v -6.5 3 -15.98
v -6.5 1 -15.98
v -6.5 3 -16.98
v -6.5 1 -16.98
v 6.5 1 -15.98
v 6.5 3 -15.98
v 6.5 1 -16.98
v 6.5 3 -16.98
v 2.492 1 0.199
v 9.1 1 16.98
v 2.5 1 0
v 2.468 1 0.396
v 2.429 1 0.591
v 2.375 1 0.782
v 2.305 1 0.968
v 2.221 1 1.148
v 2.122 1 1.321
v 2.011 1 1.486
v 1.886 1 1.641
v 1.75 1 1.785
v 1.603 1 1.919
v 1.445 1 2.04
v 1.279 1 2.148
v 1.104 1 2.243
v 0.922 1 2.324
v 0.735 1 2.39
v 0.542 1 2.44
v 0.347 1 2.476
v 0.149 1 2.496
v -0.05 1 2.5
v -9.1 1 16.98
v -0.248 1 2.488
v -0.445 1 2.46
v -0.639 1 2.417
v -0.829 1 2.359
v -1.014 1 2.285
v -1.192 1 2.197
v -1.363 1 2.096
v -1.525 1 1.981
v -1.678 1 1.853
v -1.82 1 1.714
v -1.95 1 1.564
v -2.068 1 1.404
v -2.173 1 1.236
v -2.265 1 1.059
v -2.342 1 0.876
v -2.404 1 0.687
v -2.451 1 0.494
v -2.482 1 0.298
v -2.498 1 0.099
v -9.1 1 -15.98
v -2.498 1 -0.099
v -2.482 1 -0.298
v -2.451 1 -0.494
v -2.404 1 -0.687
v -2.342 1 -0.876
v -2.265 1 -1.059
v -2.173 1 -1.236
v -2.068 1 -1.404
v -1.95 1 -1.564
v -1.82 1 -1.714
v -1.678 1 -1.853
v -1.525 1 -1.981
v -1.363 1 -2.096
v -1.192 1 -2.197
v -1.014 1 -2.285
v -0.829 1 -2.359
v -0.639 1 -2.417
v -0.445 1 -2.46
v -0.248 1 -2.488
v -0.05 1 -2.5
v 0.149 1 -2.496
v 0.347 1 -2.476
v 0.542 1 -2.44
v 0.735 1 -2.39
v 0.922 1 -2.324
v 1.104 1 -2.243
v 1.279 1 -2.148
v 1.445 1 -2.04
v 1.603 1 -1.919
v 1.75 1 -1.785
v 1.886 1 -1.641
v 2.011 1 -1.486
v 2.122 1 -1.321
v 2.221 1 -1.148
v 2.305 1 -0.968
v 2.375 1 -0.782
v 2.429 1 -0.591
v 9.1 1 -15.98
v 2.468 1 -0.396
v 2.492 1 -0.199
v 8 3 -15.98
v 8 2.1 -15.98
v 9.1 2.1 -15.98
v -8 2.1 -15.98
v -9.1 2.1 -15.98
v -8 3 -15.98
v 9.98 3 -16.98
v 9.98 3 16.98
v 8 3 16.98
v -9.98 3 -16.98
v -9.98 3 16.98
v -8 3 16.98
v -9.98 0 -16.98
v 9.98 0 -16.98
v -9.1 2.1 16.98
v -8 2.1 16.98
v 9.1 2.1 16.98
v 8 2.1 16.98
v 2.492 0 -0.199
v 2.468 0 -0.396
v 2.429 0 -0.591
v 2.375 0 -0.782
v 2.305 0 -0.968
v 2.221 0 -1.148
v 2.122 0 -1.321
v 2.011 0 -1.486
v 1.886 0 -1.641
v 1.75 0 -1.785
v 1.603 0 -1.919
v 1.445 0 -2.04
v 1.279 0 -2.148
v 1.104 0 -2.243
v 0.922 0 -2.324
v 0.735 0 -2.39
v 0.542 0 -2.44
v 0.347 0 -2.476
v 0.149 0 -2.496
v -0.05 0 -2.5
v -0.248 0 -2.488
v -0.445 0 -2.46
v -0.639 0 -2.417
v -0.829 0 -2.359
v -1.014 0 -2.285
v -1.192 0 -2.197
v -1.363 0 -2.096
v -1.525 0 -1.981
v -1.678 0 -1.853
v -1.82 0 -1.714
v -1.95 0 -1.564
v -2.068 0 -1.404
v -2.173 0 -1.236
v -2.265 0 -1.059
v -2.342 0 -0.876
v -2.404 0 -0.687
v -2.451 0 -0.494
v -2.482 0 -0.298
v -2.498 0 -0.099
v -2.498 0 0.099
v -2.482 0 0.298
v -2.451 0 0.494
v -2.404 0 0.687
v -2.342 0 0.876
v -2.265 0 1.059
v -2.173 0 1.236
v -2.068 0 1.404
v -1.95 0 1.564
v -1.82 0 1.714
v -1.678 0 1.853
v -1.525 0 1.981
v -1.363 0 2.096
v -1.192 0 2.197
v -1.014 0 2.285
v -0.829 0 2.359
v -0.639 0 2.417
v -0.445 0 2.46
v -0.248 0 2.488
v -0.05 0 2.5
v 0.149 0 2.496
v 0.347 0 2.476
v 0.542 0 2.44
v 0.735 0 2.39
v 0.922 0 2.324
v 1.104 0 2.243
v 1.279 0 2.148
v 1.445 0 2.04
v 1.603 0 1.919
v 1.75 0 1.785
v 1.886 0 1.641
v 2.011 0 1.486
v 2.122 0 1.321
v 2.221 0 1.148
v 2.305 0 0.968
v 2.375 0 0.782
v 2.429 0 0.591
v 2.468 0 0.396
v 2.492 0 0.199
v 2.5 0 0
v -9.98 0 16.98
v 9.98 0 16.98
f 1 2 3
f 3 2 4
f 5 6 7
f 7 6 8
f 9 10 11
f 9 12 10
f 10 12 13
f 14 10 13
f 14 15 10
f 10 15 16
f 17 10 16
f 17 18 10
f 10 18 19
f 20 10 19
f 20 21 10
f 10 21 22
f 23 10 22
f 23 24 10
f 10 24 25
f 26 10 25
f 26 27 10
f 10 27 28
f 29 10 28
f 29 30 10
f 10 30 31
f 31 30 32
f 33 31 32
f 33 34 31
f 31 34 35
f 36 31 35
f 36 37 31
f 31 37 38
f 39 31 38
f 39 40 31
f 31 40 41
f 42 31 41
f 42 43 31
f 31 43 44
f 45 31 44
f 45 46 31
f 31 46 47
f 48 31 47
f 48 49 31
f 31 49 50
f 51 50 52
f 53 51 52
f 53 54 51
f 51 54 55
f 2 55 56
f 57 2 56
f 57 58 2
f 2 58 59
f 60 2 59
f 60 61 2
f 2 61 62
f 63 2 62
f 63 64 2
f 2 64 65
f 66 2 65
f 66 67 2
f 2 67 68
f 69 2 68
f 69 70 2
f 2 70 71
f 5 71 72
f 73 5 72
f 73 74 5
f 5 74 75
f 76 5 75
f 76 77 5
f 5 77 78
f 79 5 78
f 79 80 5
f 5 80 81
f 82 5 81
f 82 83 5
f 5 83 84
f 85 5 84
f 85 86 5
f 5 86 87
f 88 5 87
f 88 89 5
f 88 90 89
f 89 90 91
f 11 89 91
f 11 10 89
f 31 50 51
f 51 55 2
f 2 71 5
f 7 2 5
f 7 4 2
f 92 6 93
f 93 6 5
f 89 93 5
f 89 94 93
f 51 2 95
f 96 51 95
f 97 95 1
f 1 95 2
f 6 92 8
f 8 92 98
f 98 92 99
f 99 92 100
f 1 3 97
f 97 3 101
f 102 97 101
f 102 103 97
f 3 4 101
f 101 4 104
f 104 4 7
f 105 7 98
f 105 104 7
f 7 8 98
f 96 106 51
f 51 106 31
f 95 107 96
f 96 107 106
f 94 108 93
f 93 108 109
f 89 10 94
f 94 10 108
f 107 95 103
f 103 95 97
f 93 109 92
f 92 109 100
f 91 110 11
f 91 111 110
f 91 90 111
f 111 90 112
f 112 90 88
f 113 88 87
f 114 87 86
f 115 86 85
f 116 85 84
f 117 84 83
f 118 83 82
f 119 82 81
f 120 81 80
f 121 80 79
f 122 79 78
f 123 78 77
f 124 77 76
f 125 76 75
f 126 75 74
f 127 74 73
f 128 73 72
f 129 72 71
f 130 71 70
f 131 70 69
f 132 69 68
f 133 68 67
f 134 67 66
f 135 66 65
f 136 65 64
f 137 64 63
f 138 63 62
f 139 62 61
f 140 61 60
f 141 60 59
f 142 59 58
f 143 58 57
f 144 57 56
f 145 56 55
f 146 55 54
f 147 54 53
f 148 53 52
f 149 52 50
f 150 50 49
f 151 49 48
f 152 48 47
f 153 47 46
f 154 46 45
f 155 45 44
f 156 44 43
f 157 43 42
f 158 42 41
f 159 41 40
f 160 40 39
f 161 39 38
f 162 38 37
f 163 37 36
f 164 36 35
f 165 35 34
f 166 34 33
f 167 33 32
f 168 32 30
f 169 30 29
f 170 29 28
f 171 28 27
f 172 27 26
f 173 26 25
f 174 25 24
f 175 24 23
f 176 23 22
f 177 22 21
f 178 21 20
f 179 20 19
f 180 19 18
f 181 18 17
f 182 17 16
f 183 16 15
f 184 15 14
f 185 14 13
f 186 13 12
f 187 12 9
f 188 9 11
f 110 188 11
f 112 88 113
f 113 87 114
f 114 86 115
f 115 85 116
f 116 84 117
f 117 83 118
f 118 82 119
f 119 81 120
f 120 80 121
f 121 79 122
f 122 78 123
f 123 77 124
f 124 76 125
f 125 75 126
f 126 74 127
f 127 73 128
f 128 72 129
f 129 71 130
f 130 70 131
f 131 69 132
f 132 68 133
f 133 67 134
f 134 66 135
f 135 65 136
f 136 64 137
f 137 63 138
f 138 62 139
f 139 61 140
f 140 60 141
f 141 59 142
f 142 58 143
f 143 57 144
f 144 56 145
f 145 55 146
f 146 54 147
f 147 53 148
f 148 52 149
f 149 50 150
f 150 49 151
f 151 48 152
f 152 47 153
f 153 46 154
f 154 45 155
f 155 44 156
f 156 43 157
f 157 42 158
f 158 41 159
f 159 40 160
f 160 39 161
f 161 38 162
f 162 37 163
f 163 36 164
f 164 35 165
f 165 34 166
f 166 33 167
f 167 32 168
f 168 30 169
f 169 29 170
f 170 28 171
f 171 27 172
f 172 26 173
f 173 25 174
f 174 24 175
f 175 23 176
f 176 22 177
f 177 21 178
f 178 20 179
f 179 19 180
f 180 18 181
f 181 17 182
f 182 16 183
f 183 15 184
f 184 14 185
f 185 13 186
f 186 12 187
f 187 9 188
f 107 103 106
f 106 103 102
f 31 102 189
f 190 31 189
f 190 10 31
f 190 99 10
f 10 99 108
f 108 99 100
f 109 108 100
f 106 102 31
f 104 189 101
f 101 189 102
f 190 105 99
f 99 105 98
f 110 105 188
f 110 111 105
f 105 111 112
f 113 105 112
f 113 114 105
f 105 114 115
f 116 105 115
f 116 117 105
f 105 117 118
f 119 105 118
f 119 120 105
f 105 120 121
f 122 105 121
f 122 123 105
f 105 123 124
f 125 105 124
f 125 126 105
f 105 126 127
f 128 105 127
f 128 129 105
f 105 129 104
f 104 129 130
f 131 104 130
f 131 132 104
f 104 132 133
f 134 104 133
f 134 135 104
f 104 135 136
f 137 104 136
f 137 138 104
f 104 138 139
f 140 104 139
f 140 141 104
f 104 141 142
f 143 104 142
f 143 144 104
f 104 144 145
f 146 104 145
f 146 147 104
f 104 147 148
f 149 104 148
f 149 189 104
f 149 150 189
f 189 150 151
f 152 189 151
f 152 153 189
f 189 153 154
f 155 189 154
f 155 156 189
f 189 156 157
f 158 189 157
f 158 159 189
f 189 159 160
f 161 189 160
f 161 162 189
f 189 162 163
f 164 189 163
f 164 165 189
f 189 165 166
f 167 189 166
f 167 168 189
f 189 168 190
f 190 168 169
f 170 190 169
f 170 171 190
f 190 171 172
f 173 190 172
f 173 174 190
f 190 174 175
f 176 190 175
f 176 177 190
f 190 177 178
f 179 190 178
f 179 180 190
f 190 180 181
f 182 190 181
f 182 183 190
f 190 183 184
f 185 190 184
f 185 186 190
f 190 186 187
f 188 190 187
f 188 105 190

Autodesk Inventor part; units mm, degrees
ref_plane "YZ Plane" through (0, 0, 0) normal (1, 0, 0) x (0, 1, 0)
ref_plane "XZ Plane" through (0, 0, 0) normal (0, 1, 0) x (-1, 0, 0)
ref_plane "XY Plane" through (0, 0, 0) normal (0, 0, 1) x (1, 0, 0)
sketch "Sketch1" plane through (0, 0, 0) normal (0, 1, 0) x (-1, 0, 0)
  line L0 (9.98, 16.98) -> (-9.98, 16.98)
  line L1 (-9.98, 16.98) -> (-9.98, -16.98)
  line L2 (-9.98, -16.98) -> (9.98, -16.98)
  line L3 (9.98, -16.98) -> (9.98, 16.98)
  line L4 (9.98, 16.98) -> (-9.98, -16.98) construction
  line L5 (-9.98, 16.98) -> (9.98, -16.98) construction
  point P0 (0, 0)
  dimension "d0" = 33.96
  dimension "d1" = 19.96
extrude "arm-wall" add sketch "Sketch1" along normal blind 3
sketch "Sketch2" plane through (0, 3, 0) normal (0, 1, 0) x (1, 0, 0)
  line L0 (-8, -16.98) -> (8, -16.98)
  line L1 (8, -16.98) -> (8, 15.98)
  line L2 (8, 15.98) -> (-8, 15.98)
  line L3 (-8, 15.98) -> (-8, -16.98)
  line L4 (-8, -16.98) -> (8, 15.98) construction
  line L5 (8, -16.98) -> (-8, 15.98) construction
  line L6 (0, 23.772) -> (0, -23.772) projected
  line L7 (9.98, 16.98) -> (-9.98, 16.98) projected
  line L8 (-9.98, -16.98) -> (9.98, -16.98) projected
  point P0 (0, 0)
  point P1 (0, -0.5)
  point P2 (0, -0.5)
  dimension "d4" = 16
  dimension "d5" = 1
extrude "slot" cut sketch "Sketch2" against normal blind 2
sketch "Sketch3" plane through (0, 0, 0) normal (0, -1, 0) x (1, 0, 0)
  circle A0 centre (0, 0) radius 2.5
  dimension "d12" = 5
extrude "Extrusion3" cut sketch "Sketch3" against normal blind 2
sketch "Sketch4" plane through (-9.98, 0, 16.98) normal (0, 0, 1) x (1, 0, 0)
  line L0 (1.98, 1) -> (0.88, 1)
  line L1 (0.88, 1) -> (0.88, 2.1)
  line L2 (0.88, 2.1) -> (1.98, 2.1)
  line L3 (1.98, 2.1) -> (1.98, 1)
  line L4 (17.98, 1) -> (19.08, 1)
  line L5 (19.08, 1) -> (19.08, 2.1)
  line L6 (19.08, 2.1) -> (17.98, 2.1)
  line L7 (17.98, 2.1) -> (17.98, 1)
  point P0 (9.98, 0)
  dimension "d15" = 1.1
  dimension "d16" = 1.1
  dimension "d17" = 1.1
  dimension "d18" = 1.1
extrude "Extrusion4" cut sketch "Sketch4" against normal up to surface (32.96 mm away)
sketch "Sketch5" plane through (9.98, 0, -16.98) normal (0, 0, -1) x (-1, 0, 0)
  line L0 (9.98, 5.9286) -> (9.98, -4.0714)
  line L1 (0, 0) -> (19.96, 0) projected
  line L2 (3.48, 3) -> (16.48, 3)
  line L3 (16.48, 3) -> (16.48, 1)
  line L4 (16.48, 1) -> (3.48, 1)
  line L5 (3.48, 1) -> (3.48, 3)
  line L6 (0, 3) -> (19.96, 3) projected
  point P0 (9.98, 0)
  point P1 (9.98, 0)
  dimension "d21" = 10
  dimension "d22" = 1
  dimension "d23" = 13
extrude "Extrusion5" cut sketch "Sketch5" against normal up to next
equation "\"d2\" = armthick"
equation "\"d4\" = adapterh"
equation "\"d5\" = -0.5 * adapterw + 0.5 * armw"
equation "\"d6\" = armslotd"
equation "\"d15\" = d16"
equation "\"d17\" = d15"
equation "\"d18\" = d16"
equation "\"printer3dtolerance\" = 0.1"
equation "\"wallw\" = 42"
equation "\"wallh\" = 44"
equation "\"cornerrad\" = 2"
equation "\"baseextra\" = 2"
equation "\"wall1_thick\" = 8"
equation "\"wall2_thick\" = 6.4"
equation "\"wall3_thick\" = 4"
equation "\"wall1slot\" = 8.1"
equation "\"wall2slot\" = 6.5"
equation "\"wall3slot\" = 4.1"
equation "\"gap2\" = 28"
equation "\"baseh\" = 79"
equation "\"basew\" = 44"
equation "\"base_thick\" = 6"
equation "\"base_slots_depth\" = 4"
equation "\"servobigcircledia\" = 11.6"
equation "\"servosmallcircledia\" = 5.9"
equation "\"servo9gw\" = 22.8"
equation "\"servomounth\" = 4"
equation "\"servomountsquare\" = 4"
equation "\"servopolygonr\" = 6.1"
equation "\"servopolygonl\" = 5.9"
equation "\"distancefrombottom\" = 34"
equation "\"distancefromleft\" = 22"
equation "\"wall3slotd\" = 2"
equation "\"wall3slotw\" = 36"
equation "\"adapterh\" = 16"
equation "\"adapterw\" = 32"
equation "\"armw\" = 34"
equation "\"armslotd\" = 2"
equation "\"armthick\" = 3"
equation "\"fanhb\" = 11"
equation "\"fanhs\" = 9.6"
equation "\"adapterwallslotd\" = 2"
equation "\"adapterwallthick\" = 6"
equation "\"armhornthick\" = 3"
equation "\"hornscrewholed\" = 2"
equation "\"hornscrewheadd\" = 3"
equation "\"hornthick\" = 1.5"
properties part number "arm-slot"
